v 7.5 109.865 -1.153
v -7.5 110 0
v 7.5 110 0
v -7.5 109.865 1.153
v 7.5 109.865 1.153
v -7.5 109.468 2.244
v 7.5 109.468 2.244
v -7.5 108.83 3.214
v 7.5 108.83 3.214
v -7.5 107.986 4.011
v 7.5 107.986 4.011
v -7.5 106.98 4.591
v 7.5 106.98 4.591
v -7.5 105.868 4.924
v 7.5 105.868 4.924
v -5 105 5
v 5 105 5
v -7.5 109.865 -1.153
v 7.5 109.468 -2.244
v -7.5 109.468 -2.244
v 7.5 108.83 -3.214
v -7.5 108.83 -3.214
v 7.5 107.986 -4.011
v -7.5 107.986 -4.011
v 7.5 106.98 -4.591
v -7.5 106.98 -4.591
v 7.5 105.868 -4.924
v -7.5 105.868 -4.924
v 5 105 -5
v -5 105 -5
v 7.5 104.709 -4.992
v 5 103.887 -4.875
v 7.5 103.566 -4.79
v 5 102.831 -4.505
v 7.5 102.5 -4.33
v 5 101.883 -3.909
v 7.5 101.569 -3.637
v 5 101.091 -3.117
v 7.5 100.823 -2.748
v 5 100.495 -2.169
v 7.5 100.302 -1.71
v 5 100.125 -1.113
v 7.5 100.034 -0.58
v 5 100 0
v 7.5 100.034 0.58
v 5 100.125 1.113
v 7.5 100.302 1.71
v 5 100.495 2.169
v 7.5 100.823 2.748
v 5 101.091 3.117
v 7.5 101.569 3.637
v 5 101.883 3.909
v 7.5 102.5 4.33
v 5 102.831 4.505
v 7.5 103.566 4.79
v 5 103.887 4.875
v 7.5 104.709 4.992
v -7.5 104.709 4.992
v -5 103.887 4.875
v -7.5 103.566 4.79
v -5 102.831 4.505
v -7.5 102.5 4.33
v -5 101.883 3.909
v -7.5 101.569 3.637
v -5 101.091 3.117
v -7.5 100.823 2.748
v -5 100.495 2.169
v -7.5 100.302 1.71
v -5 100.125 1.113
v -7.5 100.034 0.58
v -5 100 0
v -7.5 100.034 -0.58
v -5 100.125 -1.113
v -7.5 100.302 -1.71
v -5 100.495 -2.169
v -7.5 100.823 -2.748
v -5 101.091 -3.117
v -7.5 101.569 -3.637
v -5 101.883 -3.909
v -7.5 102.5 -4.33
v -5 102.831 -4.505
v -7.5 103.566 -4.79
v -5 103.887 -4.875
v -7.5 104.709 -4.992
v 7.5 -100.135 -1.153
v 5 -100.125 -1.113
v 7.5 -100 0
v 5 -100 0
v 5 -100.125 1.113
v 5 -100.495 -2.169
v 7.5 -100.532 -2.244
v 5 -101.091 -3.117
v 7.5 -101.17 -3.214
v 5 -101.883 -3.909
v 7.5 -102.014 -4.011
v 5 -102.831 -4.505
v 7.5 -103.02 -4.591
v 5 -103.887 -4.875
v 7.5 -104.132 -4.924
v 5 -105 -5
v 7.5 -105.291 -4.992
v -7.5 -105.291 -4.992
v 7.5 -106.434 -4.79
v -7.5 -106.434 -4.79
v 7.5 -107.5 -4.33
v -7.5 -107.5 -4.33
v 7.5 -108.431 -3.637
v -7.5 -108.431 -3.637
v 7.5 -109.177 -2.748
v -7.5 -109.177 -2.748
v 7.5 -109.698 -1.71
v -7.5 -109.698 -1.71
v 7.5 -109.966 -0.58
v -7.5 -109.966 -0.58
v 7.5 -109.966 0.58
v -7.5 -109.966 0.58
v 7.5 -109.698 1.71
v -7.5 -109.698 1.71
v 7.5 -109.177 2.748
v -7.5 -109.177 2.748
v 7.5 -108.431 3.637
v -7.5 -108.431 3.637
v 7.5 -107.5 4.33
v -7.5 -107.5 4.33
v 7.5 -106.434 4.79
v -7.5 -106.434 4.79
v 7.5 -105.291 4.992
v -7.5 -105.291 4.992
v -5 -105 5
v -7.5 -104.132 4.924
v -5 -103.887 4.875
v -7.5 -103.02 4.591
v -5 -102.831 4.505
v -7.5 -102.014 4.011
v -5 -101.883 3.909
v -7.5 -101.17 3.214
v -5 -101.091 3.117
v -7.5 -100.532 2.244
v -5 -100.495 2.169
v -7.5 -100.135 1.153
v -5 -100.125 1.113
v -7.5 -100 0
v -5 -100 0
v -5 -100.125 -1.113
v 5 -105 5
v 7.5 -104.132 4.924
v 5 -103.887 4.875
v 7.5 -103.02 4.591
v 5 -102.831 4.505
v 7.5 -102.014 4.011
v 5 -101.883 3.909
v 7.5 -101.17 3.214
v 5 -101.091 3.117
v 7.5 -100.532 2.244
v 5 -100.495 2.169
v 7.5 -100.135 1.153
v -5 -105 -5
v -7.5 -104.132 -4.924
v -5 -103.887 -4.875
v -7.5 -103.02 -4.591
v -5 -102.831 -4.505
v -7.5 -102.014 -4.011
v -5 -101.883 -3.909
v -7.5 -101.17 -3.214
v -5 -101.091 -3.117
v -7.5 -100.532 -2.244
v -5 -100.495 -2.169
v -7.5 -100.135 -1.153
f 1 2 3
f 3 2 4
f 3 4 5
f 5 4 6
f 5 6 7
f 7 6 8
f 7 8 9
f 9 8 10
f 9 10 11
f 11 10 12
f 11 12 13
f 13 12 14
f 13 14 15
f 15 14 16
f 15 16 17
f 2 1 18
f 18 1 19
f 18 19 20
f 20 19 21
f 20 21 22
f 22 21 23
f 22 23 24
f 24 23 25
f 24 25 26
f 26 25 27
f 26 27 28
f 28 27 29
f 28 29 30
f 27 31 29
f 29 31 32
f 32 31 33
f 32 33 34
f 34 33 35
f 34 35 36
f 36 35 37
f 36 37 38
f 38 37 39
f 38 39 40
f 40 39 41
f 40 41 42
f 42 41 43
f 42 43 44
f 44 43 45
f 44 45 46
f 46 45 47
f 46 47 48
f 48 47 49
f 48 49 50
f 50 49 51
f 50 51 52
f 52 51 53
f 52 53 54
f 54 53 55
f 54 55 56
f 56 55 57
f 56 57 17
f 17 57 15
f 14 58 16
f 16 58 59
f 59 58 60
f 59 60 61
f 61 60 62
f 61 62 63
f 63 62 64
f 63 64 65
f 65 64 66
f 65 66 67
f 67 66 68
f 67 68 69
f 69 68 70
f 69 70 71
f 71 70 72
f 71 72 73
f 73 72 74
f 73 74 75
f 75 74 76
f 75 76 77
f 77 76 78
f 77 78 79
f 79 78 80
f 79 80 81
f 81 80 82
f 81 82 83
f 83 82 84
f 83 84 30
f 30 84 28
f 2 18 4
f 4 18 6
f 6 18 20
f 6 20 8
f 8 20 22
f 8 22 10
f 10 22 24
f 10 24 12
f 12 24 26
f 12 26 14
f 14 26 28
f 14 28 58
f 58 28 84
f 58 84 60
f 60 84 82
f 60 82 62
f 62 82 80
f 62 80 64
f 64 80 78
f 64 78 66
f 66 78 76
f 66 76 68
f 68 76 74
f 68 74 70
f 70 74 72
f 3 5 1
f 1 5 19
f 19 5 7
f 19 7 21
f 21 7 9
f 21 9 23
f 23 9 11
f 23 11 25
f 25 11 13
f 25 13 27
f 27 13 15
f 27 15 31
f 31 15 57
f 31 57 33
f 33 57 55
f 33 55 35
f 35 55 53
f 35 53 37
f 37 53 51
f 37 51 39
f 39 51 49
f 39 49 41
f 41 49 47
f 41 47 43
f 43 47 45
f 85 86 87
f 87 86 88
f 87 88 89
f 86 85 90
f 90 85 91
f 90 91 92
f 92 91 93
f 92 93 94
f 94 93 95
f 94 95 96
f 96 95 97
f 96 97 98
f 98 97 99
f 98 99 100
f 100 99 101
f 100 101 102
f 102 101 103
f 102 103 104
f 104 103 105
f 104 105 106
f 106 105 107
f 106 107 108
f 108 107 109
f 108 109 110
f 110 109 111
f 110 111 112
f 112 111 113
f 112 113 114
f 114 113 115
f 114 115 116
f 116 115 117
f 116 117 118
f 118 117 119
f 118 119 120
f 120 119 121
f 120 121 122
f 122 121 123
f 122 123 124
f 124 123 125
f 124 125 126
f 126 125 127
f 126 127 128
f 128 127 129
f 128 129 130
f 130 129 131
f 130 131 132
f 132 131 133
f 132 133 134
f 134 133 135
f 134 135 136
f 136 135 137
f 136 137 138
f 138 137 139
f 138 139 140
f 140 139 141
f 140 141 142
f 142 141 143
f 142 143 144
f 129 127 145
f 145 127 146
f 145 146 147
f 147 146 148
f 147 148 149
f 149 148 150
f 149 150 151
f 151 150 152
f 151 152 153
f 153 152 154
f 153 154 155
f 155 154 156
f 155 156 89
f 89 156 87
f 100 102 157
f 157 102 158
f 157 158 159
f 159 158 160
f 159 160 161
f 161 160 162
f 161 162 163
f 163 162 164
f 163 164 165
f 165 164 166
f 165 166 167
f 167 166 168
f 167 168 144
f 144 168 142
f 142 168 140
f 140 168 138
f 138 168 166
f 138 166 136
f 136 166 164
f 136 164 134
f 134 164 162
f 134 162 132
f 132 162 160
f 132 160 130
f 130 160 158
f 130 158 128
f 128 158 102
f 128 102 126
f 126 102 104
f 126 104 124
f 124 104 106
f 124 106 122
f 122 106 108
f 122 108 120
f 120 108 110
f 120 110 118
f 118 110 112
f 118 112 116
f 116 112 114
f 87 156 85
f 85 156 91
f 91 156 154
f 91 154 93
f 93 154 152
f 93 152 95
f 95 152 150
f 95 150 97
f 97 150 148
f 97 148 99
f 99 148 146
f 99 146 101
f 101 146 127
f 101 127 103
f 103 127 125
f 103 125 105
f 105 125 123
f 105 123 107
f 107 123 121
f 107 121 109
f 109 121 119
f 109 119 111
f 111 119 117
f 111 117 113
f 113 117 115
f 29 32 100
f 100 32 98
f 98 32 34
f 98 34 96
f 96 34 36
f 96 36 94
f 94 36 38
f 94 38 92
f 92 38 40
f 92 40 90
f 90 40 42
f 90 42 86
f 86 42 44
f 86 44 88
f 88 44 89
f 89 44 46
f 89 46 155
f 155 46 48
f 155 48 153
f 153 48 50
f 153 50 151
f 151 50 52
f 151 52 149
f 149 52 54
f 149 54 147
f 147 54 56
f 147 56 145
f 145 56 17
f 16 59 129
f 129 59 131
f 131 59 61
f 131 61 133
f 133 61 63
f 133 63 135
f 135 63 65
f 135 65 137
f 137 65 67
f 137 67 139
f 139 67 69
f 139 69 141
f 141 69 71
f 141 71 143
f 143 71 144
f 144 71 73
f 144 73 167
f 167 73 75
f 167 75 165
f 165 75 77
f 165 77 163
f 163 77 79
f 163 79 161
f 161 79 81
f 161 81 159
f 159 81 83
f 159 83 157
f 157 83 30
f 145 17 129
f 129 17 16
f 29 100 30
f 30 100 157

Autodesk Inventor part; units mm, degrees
ref_plane "YZ Plane" through (0, 0, 0) normal (1, 0, 0) x (0, 1, 0)
ref_plane "XZ Plane" through (0, 0, 0) normal (0, 1, 0) x (-1, 0, 0)
ref_plane "XY Plane" through (0, 0, 0) normal (0, 0, 1) x (1, 0, 0)
sketch "スケッチ1" plane through (0, 0, 0) normal (1, 0, 0) x (0, 1, 0)
  line L0 (-105, 5) -> (105, 5)
  line L1 (105, 5) -> (105, -5)
  line L2 (105, -5) -> (-105, -5)
  line L3 (-105, -5) -> (-105, 5)
  circle A0 centre (-105, 0) radius 5
  circle A1 centre (105, 0) radius 5
  point P0 (0, 0)
  point P1 (0, 5)
  dimension "d0" = 210
  dimension "d1" = 10
  dimension "d2" = 5
  dimension "d3" = 105
extrude "押し出し1" add sketch "スケッチ1" along normal blind 5 and the other way blind 5 contours A0 L3 | L0 A1 L2 A0 | L1 A1 picked at (-103.4984, 0.7231) picked at (102.0793, -0.9468)
extrude "押し出し2" add sketch "スケッチ1" along normal blind 7.5 and the other way blind 7.5 contours A0 L3 | L3 A0 | A1 L1 | L1 A1
